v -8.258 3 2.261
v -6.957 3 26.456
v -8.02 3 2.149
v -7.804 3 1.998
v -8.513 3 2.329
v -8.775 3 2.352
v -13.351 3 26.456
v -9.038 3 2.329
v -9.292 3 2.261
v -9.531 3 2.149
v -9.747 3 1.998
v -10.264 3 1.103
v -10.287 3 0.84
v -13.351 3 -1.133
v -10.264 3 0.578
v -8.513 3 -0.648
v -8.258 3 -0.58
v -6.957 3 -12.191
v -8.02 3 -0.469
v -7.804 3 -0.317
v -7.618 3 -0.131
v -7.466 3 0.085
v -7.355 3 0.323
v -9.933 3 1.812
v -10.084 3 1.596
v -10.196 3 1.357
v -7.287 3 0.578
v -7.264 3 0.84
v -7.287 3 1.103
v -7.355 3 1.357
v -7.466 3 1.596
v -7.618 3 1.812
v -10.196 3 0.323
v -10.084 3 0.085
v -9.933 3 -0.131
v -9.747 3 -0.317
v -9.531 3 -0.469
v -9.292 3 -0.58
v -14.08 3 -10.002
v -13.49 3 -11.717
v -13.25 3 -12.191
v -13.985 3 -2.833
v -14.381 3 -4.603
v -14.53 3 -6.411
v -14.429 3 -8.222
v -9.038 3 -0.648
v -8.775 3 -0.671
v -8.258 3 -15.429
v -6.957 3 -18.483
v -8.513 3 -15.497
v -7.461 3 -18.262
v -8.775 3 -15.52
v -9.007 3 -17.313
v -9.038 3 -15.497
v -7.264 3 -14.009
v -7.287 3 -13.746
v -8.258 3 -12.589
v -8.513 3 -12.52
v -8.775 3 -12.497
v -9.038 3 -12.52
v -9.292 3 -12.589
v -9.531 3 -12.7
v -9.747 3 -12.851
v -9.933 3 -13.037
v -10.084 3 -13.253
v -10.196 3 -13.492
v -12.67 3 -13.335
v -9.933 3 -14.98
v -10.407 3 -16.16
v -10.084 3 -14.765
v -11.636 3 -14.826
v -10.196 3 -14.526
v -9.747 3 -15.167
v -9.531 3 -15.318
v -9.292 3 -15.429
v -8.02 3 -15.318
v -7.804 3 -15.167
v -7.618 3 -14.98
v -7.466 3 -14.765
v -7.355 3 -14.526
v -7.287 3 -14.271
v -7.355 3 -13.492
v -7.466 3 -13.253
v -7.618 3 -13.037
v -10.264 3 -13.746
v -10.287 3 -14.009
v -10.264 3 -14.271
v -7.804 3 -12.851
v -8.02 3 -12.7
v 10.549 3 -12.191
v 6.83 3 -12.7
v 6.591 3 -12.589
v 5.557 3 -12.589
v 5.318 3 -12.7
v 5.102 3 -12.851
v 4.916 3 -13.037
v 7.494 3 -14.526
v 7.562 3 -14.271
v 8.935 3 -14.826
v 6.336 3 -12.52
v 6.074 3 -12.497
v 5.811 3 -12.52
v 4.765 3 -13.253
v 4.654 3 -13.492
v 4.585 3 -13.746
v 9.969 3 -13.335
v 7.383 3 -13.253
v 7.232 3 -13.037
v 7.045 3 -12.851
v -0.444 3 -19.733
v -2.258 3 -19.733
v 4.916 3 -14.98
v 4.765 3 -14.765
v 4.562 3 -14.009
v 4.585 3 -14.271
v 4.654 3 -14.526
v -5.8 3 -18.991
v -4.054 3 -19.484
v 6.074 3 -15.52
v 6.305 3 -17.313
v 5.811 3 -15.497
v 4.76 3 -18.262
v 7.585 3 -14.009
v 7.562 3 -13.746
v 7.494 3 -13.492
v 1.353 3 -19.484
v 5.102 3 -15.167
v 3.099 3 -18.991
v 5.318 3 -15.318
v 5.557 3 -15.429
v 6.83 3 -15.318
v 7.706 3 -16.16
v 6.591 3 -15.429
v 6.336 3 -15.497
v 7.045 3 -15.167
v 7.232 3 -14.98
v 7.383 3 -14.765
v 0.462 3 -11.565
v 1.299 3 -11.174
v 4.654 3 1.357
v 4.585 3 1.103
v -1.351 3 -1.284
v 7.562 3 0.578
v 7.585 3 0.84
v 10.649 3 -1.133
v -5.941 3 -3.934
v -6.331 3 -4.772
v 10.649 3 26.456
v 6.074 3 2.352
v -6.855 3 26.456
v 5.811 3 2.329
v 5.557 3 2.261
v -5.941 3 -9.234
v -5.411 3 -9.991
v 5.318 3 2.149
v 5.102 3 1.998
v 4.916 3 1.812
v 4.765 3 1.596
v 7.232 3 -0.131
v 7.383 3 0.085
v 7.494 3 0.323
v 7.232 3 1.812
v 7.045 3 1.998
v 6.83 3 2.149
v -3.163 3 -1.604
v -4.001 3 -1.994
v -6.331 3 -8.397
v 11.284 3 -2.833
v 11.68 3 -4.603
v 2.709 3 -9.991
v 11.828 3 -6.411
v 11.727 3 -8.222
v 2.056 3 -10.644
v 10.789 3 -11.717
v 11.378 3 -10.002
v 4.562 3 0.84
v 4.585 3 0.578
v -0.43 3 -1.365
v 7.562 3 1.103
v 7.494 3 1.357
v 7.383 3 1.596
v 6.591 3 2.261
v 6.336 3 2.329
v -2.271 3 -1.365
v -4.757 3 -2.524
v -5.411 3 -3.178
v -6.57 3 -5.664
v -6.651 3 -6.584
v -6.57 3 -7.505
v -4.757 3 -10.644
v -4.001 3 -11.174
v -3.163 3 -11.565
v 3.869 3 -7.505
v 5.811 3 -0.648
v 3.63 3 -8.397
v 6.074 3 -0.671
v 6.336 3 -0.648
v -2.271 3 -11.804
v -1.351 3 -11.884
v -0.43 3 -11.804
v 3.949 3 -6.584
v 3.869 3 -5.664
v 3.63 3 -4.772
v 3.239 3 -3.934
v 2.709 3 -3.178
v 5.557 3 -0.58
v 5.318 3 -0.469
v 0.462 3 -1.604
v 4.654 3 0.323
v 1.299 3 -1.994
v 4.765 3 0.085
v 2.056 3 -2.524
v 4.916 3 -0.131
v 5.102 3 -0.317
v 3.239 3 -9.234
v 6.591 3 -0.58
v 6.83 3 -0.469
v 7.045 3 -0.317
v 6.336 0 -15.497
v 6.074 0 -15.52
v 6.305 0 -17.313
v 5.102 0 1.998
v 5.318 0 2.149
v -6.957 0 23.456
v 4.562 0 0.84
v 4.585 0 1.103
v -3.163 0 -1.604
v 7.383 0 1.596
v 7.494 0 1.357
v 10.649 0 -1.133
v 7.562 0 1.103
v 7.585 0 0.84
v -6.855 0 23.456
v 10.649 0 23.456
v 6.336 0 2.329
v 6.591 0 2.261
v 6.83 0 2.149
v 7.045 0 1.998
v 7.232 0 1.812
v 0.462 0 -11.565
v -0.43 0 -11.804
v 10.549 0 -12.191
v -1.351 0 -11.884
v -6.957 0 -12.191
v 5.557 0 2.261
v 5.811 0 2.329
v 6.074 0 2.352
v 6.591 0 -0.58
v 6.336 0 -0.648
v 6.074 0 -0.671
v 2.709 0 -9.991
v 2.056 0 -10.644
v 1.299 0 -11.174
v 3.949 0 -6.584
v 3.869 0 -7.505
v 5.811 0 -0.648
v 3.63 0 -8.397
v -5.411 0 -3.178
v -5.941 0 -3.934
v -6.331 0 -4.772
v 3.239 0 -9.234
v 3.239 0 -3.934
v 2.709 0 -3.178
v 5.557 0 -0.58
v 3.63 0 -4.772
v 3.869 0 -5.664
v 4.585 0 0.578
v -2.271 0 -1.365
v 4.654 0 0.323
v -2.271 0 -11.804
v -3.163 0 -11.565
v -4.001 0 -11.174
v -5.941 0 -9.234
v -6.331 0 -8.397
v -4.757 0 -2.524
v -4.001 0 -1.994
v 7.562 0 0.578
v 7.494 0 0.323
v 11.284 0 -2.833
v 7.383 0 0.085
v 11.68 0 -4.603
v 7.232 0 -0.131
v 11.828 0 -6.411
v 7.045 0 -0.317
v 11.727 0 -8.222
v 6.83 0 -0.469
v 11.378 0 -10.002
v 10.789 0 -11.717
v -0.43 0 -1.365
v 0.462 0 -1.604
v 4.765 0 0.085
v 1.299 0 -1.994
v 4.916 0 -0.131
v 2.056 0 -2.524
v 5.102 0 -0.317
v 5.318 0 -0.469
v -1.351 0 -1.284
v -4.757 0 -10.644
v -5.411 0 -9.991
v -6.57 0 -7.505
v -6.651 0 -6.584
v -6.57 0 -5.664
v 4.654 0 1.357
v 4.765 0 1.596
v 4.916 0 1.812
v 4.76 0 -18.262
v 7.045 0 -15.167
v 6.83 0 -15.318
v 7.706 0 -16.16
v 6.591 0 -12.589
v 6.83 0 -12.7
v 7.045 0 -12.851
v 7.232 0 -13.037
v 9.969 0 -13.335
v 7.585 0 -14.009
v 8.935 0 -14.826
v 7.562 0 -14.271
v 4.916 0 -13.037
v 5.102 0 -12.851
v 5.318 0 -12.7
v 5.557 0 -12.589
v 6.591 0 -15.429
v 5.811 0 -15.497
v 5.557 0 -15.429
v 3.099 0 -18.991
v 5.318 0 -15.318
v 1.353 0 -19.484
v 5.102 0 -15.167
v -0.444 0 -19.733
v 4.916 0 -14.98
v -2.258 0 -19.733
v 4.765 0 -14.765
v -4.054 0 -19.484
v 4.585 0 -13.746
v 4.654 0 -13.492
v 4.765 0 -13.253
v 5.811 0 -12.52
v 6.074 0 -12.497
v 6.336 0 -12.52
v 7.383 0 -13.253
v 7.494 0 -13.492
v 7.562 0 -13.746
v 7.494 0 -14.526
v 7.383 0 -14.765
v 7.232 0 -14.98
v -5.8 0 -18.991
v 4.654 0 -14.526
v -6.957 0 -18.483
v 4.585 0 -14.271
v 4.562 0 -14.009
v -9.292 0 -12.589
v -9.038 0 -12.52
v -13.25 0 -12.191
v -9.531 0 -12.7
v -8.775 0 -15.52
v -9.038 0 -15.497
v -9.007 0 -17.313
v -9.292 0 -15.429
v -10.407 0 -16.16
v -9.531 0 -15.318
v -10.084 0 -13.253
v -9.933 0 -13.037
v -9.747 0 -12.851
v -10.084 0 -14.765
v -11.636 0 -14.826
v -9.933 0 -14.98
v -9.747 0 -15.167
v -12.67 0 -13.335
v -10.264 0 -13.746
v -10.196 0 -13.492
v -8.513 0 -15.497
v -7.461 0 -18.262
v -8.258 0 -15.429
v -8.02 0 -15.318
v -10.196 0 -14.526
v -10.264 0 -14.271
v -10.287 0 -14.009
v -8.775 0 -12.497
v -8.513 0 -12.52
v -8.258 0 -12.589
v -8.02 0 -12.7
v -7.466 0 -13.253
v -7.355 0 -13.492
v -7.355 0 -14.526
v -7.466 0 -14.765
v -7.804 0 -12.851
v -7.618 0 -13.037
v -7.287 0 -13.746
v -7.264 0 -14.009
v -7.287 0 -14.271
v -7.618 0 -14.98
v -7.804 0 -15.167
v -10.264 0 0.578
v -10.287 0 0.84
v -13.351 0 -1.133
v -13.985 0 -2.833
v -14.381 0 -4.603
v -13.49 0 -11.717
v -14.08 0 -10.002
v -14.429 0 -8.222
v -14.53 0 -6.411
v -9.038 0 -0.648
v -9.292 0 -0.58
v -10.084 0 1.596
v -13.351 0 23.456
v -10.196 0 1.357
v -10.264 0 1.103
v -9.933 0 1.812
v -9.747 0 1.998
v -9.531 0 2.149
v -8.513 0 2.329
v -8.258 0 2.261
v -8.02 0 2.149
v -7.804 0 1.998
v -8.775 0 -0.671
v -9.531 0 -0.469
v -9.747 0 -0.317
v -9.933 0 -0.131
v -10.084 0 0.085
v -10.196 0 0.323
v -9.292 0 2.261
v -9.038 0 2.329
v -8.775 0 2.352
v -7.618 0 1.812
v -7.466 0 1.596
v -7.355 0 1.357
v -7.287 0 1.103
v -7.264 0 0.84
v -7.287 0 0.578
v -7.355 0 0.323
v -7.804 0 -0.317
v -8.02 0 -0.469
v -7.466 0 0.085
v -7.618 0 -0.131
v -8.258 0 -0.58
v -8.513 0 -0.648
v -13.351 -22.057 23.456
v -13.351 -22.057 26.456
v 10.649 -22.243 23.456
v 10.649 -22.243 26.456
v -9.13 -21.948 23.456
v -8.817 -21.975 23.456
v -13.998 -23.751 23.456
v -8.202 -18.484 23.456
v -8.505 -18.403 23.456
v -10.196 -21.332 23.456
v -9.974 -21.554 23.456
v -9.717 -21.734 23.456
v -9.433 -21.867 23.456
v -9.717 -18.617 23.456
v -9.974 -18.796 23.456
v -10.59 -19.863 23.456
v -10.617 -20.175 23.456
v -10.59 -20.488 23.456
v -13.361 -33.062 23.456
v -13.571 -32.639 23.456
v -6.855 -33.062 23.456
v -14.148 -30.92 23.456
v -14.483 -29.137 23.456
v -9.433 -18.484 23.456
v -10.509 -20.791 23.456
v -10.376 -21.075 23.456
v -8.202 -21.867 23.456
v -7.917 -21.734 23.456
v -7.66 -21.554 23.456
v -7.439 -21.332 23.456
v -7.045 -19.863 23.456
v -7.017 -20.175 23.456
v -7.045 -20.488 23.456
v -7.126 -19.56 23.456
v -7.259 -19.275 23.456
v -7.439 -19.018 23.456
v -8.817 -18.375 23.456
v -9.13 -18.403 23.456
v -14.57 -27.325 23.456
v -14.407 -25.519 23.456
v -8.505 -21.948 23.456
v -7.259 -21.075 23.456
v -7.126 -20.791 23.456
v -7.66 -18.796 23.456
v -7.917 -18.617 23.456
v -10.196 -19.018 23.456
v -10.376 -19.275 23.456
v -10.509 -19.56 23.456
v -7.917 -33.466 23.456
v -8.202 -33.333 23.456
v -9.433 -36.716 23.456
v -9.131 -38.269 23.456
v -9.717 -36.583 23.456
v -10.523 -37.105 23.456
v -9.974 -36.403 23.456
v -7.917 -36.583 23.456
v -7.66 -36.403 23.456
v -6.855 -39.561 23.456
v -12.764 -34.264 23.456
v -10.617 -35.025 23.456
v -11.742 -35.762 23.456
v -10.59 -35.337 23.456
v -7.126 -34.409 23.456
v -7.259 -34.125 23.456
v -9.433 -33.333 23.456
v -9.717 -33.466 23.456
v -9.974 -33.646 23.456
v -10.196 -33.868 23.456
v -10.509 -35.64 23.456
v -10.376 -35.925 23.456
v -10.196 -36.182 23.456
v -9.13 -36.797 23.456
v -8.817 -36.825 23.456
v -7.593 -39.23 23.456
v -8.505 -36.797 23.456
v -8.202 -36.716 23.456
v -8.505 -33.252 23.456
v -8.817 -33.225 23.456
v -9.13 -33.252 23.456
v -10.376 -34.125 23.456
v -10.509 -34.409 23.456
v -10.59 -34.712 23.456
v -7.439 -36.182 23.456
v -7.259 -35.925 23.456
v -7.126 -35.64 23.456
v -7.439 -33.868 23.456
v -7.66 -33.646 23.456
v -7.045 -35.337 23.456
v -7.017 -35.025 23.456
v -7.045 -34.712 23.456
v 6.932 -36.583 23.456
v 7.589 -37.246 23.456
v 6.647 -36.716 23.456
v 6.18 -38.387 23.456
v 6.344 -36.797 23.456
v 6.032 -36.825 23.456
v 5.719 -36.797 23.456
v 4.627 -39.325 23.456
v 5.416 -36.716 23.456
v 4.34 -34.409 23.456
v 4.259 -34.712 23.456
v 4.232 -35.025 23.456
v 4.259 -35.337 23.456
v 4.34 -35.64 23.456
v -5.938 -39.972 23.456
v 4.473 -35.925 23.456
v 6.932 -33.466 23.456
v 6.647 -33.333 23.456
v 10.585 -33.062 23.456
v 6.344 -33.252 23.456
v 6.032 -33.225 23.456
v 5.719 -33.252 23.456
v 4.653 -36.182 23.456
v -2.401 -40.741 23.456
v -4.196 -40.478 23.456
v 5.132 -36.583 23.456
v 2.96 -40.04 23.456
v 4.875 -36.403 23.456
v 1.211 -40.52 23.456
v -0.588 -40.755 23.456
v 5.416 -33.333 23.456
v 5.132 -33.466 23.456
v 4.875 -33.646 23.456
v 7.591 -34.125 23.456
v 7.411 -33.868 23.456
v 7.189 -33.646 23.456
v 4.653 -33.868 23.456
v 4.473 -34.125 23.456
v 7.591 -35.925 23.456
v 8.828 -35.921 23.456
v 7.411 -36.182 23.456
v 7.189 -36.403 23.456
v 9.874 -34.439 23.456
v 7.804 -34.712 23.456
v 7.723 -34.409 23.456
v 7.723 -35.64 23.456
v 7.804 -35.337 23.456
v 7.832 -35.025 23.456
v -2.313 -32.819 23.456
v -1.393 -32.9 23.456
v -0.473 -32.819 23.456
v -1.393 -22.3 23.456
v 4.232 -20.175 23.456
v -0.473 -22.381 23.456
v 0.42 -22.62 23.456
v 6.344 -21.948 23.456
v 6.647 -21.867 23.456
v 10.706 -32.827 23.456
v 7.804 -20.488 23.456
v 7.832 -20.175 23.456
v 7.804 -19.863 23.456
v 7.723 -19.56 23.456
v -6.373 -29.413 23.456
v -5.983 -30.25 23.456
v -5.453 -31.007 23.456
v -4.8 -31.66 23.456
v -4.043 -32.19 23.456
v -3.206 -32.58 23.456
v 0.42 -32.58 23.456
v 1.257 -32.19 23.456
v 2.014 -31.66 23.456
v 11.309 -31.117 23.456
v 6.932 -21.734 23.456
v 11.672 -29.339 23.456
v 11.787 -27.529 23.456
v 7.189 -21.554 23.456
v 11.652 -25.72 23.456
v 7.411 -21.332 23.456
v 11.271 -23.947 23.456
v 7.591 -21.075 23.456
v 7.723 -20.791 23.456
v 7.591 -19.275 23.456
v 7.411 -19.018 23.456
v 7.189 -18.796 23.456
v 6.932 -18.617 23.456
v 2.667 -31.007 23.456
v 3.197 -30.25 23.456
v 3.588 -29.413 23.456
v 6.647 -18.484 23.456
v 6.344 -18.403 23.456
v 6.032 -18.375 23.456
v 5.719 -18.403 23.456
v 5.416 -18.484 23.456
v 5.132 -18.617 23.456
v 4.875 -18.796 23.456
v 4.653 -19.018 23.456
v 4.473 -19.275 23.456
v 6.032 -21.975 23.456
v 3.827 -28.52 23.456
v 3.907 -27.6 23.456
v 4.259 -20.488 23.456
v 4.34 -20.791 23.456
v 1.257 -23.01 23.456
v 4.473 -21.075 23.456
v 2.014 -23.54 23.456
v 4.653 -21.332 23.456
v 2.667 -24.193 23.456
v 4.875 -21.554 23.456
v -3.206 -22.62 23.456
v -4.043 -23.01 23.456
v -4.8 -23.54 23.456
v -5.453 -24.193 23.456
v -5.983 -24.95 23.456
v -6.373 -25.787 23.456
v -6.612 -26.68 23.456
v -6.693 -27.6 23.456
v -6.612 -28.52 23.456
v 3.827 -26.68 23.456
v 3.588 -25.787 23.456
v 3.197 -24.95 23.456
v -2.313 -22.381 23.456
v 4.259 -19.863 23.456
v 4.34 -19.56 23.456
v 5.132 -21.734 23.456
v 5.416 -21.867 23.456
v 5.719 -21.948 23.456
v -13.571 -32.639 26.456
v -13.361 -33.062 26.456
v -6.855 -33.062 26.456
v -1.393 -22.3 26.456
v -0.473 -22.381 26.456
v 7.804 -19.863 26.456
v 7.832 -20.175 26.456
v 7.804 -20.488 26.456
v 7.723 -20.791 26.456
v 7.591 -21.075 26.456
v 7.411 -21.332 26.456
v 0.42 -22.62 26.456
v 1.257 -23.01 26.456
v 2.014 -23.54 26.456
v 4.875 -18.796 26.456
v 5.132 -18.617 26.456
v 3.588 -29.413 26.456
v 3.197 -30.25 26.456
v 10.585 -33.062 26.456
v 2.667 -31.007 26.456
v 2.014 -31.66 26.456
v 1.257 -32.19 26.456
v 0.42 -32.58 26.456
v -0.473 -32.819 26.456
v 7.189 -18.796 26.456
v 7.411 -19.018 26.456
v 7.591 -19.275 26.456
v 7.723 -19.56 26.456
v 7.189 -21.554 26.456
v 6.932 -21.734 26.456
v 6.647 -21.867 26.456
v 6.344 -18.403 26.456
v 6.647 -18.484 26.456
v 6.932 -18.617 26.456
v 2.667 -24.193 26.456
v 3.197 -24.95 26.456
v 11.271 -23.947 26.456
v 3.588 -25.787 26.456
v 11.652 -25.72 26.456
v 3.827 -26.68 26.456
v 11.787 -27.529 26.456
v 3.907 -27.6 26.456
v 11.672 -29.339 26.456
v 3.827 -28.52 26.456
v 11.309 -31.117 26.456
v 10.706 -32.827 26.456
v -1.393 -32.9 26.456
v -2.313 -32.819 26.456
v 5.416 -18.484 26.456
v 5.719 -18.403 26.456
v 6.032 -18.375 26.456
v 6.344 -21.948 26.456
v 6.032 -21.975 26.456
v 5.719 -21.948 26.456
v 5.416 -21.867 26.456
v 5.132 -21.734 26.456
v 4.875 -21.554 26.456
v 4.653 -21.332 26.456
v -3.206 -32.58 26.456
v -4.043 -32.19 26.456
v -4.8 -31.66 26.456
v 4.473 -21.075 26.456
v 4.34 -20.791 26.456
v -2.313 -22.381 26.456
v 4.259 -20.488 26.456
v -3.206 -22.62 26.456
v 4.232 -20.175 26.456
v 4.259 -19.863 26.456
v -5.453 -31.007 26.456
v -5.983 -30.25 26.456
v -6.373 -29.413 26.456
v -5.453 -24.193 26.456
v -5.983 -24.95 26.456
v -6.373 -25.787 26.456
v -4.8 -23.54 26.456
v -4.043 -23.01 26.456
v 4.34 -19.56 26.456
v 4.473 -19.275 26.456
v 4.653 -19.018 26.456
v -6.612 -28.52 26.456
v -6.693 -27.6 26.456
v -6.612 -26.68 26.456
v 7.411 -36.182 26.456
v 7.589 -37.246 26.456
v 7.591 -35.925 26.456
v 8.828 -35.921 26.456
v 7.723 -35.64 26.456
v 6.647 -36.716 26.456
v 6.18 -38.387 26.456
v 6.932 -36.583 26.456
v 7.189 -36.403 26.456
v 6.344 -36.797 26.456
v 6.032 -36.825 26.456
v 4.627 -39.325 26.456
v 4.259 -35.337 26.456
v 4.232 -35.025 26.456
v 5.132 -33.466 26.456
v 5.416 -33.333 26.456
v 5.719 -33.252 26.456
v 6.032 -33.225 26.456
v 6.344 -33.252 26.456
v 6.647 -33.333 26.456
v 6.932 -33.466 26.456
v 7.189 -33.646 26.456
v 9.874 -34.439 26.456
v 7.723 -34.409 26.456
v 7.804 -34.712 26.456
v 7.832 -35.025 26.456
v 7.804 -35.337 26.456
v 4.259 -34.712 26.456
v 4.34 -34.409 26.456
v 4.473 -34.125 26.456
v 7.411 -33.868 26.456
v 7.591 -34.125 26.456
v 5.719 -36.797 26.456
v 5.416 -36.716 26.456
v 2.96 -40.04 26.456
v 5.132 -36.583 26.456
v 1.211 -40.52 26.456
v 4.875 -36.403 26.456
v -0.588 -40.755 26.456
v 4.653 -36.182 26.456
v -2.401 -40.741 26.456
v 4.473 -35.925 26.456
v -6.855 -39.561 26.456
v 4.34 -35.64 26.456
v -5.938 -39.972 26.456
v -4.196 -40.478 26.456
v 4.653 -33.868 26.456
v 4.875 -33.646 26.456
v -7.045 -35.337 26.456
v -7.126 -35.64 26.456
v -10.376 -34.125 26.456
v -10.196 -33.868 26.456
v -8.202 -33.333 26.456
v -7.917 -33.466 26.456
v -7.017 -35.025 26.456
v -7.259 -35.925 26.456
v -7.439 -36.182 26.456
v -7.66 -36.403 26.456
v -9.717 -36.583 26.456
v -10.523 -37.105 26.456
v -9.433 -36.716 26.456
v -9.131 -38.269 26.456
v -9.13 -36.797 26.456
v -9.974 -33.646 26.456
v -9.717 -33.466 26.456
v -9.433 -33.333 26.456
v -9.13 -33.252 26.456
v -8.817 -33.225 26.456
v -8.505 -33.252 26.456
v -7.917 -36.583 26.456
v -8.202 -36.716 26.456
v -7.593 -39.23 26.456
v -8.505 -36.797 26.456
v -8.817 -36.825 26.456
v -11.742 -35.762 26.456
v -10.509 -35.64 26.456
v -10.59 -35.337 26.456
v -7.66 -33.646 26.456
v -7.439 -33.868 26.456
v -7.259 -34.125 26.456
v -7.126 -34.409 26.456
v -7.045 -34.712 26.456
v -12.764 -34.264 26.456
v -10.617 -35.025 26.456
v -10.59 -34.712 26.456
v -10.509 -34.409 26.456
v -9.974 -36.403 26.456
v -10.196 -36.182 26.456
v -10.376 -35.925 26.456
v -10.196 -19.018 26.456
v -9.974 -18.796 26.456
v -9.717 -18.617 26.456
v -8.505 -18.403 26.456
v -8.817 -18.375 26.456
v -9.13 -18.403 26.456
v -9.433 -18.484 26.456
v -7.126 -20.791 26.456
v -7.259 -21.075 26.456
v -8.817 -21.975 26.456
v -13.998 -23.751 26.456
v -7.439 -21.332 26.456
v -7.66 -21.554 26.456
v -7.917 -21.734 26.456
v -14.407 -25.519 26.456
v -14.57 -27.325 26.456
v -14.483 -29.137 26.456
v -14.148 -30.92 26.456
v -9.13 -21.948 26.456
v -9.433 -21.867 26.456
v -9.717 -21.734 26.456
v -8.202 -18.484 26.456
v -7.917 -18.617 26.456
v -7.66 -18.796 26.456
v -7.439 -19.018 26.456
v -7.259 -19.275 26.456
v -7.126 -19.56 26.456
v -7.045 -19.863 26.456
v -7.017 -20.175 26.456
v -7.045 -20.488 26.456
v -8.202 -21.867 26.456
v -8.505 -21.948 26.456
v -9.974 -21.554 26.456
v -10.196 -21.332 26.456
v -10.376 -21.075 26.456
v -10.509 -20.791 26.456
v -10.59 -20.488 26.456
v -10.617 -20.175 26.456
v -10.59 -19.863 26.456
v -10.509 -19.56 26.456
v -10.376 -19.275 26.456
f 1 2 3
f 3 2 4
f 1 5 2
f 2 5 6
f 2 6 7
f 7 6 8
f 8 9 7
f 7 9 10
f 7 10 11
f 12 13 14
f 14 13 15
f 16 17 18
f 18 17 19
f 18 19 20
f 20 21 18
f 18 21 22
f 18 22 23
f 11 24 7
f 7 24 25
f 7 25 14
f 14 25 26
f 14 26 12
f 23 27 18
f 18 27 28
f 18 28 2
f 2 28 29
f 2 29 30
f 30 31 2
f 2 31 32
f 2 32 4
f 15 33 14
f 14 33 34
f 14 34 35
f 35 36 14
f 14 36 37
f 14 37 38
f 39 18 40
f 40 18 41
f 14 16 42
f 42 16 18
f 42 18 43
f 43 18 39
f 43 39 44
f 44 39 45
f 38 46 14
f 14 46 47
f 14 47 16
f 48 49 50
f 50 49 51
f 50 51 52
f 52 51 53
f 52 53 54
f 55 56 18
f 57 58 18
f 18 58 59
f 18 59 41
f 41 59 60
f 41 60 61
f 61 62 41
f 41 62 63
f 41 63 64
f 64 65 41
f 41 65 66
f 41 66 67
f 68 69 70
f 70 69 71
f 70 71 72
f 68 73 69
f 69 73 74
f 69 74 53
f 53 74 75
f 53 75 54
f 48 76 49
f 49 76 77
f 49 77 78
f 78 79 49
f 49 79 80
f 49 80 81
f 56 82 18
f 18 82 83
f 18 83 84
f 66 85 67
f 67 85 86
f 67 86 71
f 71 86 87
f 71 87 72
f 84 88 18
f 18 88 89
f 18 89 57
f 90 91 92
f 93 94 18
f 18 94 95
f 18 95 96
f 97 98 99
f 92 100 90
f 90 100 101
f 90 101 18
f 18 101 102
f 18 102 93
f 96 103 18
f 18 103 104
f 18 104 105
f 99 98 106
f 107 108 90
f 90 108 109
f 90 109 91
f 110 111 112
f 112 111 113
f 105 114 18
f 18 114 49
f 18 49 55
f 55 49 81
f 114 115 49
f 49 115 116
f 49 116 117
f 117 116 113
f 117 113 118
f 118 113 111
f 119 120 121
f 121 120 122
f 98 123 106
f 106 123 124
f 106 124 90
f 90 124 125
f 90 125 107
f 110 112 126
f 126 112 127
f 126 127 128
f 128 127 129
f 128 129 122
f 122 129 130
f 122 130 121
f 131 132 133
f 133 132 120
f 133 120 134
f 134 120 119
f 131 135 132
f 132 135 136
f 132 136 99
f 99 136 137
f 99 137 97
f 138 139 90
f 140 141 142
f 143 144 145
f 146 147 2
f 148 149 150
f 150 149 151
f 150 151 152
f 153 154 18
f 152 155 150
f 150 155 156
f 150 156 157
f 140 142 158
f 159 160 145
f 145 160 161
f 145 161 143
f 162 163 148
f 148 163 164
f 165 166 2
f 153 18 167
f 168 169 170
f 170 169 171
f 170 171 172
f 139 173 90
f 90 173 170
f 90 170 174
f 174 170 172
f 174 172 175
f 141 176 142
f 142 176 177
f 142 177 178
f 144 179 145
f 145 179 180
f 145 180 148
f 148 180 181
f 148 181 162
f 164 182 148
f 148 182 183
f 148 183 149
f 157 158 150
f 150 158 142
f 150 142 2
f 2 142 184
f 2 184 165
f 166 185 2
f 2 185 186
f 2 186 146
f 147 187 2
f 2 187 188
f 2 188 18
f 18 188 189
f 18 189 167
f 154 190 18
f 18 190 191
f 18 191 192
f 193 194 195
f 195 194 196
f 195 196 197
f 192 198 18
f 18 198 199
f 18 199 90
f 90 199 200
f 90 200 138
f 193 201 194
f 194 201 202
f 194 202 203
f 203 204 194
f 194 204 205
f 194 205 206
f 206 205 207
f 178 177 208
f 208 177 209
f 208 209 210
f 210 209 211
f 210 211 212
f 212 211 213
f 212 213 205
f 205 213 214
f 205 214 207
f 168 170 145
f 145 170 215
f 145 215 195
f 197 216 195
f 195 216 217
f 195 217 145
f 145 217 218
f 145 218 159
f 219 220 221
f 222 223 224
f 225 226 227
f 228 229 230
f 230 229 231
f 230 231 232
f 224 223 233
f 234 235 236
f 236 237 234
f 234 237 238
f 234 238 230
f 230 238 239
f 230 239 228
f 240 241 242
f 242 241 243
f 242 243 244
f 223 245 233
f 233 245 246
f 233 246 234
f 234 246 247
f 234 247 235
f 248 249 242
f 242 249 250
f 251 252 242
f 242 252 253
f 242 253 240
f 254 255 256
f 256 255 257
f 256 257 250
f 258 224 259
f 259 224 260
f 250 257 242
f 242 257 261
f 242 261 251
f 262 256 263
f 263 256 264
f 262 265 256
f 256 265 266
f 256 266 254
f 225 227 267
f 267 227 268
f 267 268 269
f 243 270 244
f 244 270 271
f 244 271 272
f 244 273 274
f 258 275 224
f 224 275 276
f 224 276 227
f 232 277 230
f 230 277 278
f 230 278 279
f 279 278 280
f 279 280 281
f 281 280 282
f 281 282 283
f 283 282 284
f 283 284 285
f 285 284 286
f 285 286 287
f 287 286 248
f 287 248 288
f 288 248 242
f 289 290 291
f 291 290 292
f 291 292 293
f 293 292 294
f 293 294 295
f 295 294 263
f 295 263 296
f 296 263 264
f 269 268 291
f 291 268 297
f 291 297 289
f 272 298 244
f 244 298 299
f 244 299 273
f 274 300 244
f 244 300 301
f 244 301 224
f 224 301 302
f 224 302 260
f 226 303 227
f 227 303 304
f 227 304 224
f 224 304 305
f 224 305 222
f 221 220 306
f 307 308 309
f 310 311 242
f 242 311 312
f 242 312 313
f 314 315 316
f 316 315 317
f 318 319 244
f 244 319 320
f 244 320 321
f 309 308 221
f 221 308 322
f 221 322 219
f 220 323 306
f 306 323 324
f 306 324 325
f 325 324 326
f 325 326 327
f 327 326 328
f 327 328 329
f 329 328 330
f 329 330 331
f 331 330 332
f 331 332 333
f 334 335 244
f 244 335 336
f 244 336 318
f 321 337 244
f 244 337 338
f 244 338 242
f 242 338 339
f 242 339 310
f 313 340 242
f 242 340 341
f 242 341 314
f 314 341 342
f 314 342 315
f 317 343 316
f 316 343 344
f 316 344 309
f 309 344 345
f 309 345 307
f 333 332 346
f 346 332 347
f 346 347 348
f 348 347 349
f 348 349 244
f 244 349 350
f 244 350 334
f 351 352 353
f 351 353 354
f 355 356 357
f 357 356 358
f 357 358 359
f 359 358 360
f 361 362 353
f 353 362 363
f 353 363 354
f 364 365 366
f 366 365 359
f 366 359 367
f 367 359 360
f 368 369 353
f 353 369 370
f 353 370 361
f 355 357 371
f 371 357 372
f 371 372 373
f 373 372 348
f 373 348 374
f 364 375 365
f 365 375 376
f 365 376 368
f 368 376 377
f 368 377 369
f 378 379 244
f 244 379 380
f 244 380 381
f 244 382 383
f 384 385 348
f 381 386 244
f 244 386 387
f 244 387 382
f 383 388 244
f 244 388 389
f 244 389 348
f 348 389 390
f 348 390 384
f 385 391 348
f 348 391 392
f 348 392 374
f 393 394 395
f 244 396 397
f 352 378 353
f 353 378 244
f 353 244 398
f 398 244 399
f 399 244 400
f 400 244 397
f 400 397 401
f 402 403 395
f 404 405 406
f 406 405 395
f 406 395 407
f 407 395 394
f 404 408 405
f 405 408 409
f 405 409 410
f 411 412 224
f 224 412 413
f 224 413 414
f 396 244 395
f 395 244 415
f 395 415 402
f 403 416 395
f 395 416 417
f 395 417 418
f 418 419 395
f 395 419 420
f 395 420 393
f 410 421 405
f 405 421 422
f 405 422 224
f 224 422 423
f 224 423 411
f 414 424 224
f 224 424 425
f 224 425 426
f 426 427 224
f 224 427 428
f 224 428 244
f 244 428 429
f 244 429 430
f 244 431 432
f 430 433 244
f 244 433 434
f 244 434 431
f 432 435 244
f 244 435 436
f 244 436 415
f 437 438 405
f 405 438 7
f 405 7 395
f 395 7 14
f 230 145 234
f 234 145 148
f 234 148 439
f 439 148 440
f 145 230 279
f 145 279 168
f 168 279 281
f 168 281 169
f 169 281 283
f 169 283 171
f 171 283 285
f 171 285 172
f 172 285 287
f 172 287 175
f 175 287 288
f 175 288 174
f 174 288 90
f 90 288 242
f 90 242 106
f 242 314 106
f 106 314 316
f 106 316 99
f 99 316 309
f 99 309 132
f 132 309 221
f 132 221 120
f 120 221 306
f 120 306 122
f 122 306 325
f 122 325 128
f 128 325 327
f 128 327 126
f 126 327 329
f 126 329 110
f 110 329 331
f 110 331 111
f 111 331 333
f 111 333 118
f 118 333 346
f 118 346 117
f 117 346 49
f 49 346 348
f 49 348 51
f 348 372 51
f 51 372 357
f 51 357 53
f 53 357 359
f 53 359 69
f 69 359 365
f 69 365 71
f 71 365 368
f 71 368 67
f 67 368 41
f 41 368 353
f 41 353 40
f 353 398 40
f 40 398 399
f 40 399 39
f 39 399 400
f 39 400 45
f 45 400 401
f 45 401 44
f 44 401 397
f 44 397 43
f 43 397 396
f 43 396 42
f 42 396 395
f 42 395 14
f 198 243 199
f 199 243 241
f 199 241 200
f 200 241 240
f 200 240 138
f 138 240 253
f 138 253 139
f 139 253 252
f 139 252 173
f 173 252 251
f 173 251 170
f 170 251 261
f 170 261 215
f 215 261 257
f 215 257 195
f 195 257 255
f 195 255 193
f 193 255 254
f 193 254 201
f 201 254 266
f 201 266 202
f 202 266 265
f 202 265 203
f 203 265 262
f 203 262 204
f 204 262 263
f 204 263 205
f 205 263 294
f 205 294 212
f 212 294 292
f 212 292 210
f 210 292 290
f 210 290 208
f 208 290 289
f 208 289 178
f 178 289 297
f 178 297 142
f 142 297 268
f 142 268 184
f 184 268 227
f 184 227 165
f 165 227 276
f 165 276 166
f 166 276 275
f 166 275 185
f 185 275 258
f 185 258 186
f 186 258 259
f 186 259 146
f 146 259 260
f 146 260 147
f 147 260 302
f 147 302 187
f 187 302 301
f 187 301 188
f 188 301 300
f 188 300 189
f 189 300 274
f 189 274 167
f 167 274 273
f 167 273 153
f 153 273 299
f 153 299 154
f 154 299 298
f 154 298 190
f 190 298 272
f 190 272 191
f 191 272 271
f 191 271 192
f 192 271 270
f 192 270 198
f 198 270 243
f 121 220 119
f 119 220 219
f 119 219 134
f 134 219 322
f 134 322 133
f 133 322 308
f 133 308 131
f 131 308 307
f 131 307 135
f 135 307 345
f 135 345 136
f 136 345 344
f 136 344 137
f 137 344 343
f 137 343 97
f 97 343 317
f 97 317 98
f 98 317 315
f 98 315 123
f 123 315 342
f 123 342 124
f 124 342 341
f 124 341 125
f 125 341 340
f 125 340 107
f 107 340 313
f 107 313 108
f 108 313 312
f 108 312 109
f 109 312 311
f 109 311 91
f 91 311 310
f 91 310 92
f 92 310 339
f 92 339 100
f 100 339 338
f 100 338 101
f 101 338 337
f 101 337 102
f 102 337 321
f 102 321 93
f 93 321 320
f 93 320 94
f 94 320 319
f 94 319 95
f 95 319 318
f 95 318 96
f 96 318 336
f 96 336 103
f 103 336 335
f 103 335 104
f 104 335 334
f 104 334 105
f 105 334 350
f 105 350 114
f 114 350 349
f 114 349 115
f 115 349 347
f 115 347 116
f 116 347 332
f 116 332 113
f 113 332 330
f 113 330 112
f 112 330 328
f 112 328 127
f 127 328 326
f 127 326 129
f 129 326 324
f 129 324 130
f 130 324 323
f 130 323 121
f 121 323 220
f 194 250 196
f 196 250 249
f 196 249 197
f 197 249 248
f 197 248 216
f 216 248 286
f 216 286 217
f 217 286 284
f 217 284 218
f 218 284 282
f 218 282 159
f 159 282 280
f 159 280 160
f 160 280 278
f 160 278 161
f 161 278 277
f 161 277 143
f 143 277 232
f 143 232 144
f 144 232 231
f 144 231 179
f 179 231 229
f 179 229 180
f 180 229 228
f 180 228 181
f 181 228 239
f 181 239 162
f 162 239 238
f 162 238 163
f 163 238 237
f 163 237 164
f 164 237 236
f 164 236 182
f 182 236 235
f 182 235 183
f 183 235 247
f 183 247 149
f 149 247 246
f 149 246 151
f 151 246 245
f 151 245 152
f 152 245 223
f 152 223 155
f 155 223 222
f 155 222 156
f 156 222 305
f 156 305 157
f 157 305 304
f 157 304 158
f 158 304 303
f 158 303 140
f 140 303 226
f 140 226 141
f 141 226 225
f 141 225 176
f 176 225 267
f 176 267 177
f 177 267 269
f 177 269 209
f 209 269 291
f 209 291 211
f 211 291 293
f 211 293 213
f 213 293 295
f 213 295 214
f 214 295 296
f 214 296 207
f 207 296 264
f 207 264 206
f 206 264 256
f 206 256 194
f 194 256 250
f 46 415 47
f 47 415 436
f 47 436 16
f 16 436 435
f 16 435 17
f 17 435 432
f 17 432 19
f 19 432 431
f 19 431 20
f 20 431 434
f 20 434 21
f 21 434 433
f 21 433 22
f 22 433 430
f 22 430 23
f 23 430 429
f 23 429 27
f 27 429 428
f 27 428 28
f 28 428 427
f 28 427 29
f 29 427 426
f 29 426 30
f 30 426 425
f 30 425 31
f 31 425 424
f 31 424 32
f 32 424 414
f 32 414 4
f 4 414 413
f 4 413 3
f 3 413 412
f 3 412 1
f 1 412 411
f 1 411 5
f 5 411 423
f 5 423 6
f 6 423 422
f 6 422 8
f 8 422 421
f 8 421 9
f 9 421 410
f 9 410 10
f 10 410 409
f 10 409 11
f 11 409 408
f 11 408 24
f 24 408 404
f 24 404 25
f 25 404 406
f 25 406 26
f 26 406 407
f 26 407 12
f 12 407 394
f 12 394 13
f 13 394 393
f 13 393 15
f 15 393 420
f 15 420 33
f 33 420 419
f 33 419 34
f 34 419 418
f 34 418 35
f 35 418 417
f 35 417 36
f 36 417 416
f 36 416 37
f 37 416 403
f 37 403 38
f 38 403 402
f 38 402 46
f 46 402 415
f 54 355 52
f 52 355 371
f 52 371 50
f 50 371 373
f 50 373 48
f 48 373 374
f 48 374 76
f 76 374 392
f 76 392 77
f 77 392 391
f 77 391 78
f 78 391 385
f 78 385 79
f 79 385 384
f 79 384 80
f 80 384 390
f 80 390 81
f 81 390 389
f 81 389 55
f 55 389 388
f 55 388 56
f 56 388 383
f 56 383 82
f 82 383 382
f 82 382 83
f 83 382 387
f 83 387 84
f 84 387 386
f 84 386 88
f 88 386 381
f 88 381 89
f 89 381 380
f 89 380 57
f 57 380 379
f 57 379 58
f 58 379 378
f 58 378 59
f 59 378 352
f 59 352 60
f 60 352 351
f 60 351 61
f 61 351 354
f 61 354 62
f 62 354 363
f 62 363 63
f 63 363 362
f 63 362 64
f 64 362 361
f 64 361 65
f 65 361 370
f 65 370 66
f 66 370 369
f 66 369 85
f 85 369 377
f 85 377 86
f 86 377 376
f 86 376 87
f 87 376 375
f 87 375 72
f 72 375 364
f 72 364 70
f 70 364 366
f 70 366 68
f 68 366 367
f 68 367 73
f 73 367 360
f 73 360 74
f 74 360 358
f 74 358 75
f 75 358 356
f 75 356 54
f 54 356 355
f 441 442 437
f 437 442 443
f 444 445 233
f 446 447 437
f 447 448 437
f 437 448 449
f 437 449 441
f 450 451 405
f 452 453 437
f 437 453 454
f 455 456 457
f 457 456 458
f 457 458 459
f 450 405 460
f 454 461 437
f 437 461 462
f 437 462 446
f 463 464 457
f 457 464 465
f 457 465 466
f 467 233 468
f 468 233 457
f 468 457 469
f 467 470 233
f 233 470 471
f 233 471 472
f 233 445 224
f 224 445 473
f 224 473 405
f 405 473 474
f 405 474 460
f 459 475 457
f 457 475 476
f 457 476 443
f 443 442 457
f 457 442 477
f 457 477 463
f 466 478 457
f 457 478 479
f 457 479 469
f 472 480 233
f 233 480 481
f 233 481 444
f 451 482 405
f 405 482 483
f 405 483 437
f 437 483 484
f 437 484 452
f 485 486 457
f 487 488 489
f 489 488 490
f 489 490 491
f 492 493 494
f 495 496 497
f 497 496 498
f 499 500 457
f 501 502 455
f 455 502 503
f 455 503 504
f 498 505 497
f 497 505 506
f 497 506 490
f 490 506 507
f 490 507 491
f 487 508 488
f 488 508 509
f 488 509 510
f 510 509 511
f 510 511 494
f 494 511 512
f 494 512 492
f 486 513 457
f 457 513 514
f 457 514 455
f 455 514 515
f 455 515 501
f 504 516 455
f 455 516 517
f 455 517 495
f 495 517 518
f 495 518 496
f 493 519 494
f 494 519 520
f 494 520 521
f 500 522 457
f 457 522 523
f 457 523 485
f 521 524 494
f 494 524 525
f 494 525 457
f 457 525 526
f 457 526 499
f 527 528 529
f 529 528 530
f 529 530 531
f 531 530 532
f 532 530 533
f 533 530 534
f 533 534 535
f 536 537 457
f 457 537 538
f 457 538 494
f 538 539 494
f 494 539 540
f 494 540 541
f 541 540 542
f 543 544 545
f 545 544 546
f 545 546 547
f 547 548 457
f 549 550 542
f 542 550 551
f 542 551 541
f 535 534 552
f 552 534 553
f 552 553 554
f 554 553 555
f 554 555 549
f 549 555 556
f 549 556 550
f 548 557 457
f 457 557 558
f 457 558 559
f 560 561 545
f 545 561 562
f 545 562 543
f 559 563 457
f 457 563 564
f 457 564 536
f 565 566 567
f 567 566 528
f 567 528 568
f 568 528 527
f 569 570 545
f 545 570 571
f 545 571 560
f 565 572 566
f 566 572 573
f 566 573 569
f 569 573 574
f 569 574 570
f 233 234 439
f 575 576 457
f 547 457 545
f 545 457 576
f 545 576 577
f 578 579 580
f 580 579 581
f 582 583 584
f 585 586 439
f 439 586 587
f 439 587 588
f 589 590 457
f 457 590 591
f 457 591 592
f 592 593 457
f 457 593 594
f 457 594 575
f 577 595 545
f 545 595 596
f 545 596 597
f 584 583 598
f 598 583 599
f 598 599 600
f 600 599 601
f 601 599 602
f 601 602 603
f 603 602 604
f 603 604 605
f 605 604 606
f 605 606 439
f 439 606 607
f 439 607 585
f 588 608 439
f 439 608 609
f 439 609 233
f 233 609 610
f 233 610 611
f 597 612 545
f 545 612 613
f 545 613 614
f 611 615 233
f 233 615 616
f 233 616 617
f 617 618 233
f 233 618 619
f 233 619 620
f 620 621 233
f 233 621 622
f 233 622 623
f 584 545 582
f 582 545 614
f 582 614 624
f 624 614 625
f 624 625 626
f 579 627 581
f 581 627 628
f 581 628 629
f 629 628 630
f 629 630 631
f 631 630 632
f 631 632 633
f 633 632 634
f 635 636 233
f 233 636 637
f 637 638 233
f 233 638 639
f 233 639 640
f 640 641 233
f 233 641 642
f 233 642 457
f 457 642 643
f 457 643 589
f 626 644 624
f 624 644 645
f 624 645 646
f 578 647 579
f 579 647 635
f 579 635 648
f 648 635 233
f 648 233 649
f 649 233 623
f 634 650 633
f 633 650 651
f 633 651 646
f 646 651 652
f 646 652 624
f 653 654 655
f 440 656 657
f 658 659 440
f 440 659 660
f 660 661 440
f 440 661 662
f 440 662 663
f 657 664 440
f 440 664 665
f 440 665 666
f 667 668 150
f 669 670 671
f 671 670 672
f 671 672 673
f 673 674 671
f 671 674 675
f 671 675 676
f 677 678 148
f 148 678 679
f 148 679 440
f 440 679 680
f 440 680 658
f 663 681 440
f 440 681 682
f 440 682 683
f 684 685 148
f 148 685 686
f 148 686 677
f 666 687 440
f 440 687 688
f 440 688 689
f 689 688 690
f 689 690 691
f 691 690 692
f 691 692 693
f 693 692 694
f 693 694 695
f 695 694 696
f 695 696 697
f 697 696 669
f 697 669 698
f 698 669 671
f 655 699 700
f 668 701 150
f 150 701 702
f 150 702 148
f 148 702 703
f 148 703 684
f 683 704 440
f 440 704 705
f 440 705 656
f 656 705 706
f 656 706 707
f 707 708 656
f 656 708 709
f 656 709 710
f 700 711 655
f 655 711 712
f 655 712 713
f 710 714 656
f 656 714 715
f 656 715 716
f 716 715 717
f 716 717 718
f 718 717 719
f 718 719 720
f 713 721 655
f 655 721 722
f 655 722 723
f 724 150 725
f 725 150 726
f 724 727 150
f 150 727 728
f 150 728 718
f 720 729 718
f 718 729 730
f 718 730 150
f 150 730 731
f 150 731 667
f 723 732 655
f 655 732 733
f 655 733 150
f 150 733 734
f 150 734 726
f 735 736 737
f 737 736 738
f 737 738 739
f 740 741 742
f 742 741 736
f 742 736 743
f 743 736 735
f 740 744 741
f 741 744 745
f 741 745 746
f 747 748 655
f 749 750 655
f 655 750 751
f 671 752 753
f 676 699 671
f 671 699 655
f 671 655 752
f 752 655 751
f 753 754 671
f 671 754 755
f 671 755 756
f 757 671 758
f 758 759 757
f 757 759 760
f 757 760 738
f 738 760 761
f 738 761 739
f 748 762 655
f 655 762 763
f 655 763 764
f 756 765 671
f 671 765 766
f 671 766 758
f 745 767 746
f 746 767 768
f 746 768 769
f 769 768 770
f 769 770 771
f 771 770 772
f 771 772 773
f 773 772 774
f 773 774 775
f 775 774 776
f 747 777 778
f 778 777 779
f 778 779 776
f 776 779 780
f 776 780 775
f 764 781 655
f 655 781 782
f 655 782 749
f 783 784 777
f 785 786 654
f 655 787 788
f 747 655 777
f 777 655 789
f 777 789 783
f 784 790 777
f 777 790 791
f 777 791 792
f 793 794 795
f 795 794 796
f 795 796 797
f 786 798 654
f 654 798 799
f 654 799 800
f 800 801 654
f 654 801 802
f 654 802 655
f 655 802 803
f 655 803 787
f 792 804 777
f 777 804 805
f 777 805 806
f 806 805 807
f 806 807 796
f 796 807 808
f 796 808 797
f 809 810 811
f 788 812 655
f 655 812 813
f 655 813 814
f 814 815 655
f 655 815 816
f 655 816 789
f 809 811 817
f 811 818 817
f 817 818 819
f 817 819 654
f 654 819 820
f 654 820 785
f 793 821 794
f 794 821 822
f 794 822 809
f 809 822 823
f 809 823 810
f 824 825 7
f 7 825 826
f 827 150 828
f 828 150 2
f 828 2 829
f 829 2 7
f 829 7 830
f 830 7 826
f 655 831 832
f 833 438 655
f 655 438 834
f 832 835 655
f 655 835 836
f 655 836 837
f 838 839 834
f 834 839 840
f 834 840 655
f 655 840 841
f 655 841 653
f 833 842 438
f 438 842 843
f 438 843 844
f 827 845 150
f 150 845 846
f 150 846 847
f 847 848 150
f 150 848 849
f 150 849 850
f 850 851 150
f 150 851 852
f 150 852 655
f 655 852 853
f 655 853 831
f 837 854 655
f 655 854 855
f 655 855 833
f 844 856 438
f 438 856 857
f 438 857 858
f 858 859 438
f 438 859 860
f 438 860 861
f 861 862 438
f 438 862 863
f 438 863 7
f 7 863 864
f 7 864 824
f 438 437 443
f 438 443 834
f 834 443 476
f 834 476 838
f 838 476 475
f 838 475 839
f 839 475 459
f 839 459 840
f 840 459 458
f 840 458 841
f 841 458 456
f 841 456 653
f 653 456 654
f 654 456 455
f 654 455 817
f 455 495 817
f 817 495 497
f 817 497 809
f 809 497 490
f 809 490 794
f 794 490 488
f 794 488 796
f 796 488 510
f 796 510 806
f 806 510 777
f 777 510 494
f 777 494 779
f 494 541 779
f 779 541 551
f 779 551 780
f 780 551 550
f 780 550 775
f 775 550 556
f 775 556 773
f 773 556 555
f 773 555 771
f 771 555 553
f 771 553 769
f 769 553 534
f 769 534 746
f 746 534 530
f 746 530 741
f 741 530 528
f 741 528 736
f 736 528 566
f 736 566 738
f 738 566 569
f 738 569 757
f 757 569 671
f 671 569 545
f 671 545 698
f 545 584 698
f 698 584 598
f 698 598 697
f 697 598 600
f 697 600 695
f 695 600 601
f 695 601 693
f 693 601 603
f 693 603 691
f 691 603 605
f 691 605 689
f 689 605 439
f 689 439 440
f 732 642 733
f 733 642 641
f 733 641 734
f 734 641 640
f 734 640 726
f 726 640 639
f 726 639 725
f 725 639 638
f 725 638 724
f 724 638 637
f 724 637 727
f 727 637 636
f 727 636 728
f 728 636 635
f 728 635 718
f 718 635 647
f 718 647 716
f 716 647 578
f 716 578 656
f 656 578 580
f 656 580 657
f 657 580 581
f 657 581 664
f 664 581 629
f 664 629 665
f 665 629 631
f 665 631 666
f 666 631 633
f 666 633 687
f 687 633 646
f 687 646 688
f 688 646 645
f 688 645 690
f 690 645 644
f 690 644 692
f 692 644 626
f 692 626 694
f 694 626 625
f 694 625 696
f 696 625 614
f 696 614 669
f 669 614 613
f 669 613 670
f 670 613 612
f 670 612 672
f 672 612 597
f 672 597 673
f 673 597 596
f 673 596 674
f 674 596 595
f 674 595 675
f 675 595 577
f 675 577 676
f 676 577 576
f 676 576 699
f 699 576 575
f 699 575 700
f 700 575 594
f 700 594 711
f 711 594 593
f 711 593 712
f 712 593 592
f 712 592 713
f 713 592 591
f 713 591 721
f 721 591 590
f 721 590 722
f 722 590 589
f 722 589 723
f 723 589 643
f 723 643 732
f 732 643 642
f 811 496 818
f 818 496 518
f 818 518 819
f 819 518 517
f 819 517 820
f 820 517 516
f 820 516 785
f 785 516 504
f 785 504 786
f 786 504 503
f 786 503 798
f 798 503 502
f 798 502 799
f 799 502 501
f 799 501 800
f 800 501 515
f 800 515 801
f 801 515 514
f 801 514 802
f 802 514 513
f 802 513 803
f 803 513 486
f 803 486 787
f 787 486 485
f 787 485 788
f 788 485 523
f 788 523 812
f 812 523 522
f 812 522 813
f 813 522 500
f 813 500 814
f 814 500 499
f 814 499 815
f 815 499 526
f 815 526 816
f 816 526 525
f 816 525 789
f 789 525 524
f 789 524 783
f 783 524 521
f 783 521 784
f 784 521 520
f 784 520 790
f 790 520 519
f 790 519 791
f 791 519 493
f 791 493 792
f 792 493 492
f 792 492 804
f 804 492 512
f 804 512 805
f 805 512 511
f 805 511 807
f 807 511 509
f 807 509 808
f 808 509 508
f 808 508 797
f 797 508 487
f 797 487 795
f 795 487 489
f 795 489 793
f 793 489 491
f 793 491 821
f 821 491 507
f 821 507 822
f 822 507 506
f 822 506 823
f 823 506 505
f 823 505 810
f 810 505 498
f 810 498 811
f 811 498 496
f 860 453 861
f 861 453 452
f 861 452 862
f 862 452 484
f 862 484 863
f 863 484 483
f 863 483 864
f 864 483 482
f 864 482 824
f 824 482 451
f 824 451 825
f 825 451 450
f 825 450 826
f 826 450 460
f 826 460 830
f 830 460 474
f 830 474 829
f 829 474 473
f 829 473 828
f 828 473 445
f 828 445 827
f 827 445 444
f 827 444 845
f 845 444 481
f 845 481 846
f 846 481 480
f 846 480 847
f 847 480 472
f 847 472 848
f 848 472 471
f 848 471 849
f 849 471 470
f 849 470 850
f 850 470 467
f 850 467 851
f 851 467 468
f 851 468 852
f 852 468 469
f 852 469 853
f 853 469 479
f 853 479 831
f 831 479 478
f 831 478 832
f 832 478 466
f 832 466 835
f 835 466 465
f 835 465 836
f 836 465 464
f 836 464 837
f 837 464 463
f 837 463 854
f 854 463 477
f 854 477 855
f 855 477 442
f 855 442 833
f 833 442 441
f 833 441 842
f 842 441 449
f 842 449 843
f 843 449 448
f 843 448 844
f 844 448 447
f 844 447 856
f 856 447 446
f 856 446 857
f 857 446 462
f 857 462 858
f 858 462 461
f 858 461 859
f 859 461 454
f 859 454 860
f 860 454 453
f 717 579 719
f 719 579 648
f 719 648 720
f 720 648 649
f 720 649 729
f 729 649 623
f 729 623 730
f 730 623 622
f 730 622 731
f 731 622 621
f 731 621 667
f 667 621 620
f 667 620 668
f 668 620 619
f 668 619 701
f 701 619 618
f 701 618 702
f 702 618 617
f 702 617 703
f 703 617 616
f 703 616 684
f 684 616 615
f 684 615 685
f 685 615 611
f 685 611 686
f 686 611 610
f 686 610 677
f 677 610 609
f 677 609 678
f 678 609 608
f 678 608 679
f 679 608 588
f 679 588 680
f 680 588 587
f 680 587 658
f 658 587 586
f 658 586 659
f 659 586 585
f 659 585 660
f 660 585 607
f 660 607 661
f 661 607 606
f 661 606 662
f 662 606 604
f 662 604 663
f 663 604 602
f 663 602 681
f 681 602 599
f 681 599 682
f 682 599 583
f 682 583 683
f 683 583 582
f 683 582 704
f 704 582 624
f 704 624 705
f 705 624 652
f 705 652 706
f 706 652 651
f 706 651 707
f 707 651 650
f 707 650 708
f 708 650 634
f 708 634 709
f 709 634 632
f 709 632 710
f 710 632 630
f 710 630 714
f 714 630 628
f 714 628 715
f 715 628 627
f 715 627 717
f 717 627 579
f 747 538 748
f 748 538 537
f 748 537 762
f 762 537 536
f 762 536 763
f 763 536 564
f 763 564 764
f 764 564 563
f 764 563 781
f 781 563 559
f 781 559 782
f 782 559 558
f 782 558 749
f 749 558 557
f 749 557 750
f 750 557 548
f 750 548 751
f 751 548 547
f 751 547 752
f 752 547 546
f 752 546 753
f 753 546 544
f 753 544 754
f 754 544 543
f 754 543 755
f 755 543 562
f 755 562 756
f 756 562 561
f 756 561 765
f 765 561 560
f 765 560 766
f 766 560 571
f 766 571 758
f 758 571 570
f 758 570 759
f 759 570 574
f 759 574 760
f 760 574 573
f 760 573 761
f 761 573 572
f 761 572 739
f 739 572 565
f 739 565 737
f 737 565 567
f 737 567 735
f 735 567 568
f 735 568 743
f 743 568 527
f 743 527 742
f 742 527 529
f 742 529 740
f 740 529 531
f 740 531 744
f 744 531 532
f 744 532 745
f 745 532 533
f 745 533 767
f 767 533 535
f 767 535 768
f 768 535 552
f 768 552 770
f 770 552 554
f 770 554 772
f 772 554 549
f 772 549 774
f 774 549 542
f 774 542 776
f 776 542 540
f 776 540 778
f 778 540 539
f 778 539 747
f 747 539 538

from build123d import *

# Parameters (mm, degrees)
CROQUIS1_R              = 5.3
CROQUIS1_R_2            = 1.511434147
SALIENTE_EXTRUIR1_DEPTH = 3
CROQUIS3_R              = 1.8
CROQUIS3_R_2            = 5.3
SALIENTE_EXTRUIR2_DEPTH = 3


with BuildPart() as part:
    # Croquis1 → Saliente-Extruir1 (new body)
    with BuildSketch(Plane(origin=(0, 0, 0), x_dir=(1, 0, 0), z_dir=(0, 1, 0))):
        with BuildLine():
            Line((10.649291245, -23.45570863), (10.649291245, 1.133383189))
            ThreePointArc((10.649291245, 1.133383189), (-1.350708755, 19.76429137), (-13.350708755, 1.133383189))
            Line((-13.350708755, 1.133383189), (-13.350708755, -23.45570863))
            Line((-13.350708755, -23.45570863), (10.649291245, -23.45570863))
        make_face()
        with Locations((-1.350708755, 6.58429137)):
            Circle(CROQUIS1_R, mode=Mode.SUBTRACT)
        with Locations((6.073912448, 14.008912573)):
            Circle(CROQUIS1_R_2, mode=Mode.SUBTRACT)
        with Locations((6.073912448, -0.840329832)):
            Circle(CROQUIS1_R_2, mode=Mode.SUBTRACT)
        with Locations((-8.775329957, -0.840329832)):
            Circle(CROQUIS1_R_2, mode=Mode.SUBTRACT)
        with Locations((-8.775329957, 14.008912573)):
            Circle(CROQUIS1_R_2, mode=Mode.SUBTRACT)
    extrude(amount=SALIENTE_EXTRUIR1_DEPTH)

    # Croquis3 → Saliente-Extruir2 (add)
    with BuildSketch(Plane.XY.offset(23.45570863)):
        with BuildLine():
            Line((10.649291245, 3), (-13.350708755, 3))
            Line((-13.350708755, 3), (-13.350708755, -22.057235679))
            ThreePointArc((-13.350708755, -22.057235679), (-1.494791792, -40.779605827), (10.649291245, -22.242854272))
            Line((10.649291245, -22.242854272), (10.649291245, 3))
        make_face()
        with Locations((-8.817480498, -35.024621202)):
            Circle(CROQUIS3_R, mode=Mode.SUBTRACT)
        with Locations((-8.817480498, -20.175378798)):
            Circle(CROQUIS3_R, mode=Mode.SUBTRACT)
        with Locations((6.031761906, -20.175378798)):
            Circle(CROQUIS3_R, mode=Mode.SUBTRACT)
        with Locations((6.031761906, -35.024621202)):
            Circle(CROQUIS3_R, mode=Mode.SUBTRACT)
        with Locations((-1.392859296, -27.6)):
            Circle(CROQUIS3_R_2, mode=Mode.SUBTRACT)
    extrude(amount=SALIENTE_EXTRUIR2_DEPTH)


solid = part.part
